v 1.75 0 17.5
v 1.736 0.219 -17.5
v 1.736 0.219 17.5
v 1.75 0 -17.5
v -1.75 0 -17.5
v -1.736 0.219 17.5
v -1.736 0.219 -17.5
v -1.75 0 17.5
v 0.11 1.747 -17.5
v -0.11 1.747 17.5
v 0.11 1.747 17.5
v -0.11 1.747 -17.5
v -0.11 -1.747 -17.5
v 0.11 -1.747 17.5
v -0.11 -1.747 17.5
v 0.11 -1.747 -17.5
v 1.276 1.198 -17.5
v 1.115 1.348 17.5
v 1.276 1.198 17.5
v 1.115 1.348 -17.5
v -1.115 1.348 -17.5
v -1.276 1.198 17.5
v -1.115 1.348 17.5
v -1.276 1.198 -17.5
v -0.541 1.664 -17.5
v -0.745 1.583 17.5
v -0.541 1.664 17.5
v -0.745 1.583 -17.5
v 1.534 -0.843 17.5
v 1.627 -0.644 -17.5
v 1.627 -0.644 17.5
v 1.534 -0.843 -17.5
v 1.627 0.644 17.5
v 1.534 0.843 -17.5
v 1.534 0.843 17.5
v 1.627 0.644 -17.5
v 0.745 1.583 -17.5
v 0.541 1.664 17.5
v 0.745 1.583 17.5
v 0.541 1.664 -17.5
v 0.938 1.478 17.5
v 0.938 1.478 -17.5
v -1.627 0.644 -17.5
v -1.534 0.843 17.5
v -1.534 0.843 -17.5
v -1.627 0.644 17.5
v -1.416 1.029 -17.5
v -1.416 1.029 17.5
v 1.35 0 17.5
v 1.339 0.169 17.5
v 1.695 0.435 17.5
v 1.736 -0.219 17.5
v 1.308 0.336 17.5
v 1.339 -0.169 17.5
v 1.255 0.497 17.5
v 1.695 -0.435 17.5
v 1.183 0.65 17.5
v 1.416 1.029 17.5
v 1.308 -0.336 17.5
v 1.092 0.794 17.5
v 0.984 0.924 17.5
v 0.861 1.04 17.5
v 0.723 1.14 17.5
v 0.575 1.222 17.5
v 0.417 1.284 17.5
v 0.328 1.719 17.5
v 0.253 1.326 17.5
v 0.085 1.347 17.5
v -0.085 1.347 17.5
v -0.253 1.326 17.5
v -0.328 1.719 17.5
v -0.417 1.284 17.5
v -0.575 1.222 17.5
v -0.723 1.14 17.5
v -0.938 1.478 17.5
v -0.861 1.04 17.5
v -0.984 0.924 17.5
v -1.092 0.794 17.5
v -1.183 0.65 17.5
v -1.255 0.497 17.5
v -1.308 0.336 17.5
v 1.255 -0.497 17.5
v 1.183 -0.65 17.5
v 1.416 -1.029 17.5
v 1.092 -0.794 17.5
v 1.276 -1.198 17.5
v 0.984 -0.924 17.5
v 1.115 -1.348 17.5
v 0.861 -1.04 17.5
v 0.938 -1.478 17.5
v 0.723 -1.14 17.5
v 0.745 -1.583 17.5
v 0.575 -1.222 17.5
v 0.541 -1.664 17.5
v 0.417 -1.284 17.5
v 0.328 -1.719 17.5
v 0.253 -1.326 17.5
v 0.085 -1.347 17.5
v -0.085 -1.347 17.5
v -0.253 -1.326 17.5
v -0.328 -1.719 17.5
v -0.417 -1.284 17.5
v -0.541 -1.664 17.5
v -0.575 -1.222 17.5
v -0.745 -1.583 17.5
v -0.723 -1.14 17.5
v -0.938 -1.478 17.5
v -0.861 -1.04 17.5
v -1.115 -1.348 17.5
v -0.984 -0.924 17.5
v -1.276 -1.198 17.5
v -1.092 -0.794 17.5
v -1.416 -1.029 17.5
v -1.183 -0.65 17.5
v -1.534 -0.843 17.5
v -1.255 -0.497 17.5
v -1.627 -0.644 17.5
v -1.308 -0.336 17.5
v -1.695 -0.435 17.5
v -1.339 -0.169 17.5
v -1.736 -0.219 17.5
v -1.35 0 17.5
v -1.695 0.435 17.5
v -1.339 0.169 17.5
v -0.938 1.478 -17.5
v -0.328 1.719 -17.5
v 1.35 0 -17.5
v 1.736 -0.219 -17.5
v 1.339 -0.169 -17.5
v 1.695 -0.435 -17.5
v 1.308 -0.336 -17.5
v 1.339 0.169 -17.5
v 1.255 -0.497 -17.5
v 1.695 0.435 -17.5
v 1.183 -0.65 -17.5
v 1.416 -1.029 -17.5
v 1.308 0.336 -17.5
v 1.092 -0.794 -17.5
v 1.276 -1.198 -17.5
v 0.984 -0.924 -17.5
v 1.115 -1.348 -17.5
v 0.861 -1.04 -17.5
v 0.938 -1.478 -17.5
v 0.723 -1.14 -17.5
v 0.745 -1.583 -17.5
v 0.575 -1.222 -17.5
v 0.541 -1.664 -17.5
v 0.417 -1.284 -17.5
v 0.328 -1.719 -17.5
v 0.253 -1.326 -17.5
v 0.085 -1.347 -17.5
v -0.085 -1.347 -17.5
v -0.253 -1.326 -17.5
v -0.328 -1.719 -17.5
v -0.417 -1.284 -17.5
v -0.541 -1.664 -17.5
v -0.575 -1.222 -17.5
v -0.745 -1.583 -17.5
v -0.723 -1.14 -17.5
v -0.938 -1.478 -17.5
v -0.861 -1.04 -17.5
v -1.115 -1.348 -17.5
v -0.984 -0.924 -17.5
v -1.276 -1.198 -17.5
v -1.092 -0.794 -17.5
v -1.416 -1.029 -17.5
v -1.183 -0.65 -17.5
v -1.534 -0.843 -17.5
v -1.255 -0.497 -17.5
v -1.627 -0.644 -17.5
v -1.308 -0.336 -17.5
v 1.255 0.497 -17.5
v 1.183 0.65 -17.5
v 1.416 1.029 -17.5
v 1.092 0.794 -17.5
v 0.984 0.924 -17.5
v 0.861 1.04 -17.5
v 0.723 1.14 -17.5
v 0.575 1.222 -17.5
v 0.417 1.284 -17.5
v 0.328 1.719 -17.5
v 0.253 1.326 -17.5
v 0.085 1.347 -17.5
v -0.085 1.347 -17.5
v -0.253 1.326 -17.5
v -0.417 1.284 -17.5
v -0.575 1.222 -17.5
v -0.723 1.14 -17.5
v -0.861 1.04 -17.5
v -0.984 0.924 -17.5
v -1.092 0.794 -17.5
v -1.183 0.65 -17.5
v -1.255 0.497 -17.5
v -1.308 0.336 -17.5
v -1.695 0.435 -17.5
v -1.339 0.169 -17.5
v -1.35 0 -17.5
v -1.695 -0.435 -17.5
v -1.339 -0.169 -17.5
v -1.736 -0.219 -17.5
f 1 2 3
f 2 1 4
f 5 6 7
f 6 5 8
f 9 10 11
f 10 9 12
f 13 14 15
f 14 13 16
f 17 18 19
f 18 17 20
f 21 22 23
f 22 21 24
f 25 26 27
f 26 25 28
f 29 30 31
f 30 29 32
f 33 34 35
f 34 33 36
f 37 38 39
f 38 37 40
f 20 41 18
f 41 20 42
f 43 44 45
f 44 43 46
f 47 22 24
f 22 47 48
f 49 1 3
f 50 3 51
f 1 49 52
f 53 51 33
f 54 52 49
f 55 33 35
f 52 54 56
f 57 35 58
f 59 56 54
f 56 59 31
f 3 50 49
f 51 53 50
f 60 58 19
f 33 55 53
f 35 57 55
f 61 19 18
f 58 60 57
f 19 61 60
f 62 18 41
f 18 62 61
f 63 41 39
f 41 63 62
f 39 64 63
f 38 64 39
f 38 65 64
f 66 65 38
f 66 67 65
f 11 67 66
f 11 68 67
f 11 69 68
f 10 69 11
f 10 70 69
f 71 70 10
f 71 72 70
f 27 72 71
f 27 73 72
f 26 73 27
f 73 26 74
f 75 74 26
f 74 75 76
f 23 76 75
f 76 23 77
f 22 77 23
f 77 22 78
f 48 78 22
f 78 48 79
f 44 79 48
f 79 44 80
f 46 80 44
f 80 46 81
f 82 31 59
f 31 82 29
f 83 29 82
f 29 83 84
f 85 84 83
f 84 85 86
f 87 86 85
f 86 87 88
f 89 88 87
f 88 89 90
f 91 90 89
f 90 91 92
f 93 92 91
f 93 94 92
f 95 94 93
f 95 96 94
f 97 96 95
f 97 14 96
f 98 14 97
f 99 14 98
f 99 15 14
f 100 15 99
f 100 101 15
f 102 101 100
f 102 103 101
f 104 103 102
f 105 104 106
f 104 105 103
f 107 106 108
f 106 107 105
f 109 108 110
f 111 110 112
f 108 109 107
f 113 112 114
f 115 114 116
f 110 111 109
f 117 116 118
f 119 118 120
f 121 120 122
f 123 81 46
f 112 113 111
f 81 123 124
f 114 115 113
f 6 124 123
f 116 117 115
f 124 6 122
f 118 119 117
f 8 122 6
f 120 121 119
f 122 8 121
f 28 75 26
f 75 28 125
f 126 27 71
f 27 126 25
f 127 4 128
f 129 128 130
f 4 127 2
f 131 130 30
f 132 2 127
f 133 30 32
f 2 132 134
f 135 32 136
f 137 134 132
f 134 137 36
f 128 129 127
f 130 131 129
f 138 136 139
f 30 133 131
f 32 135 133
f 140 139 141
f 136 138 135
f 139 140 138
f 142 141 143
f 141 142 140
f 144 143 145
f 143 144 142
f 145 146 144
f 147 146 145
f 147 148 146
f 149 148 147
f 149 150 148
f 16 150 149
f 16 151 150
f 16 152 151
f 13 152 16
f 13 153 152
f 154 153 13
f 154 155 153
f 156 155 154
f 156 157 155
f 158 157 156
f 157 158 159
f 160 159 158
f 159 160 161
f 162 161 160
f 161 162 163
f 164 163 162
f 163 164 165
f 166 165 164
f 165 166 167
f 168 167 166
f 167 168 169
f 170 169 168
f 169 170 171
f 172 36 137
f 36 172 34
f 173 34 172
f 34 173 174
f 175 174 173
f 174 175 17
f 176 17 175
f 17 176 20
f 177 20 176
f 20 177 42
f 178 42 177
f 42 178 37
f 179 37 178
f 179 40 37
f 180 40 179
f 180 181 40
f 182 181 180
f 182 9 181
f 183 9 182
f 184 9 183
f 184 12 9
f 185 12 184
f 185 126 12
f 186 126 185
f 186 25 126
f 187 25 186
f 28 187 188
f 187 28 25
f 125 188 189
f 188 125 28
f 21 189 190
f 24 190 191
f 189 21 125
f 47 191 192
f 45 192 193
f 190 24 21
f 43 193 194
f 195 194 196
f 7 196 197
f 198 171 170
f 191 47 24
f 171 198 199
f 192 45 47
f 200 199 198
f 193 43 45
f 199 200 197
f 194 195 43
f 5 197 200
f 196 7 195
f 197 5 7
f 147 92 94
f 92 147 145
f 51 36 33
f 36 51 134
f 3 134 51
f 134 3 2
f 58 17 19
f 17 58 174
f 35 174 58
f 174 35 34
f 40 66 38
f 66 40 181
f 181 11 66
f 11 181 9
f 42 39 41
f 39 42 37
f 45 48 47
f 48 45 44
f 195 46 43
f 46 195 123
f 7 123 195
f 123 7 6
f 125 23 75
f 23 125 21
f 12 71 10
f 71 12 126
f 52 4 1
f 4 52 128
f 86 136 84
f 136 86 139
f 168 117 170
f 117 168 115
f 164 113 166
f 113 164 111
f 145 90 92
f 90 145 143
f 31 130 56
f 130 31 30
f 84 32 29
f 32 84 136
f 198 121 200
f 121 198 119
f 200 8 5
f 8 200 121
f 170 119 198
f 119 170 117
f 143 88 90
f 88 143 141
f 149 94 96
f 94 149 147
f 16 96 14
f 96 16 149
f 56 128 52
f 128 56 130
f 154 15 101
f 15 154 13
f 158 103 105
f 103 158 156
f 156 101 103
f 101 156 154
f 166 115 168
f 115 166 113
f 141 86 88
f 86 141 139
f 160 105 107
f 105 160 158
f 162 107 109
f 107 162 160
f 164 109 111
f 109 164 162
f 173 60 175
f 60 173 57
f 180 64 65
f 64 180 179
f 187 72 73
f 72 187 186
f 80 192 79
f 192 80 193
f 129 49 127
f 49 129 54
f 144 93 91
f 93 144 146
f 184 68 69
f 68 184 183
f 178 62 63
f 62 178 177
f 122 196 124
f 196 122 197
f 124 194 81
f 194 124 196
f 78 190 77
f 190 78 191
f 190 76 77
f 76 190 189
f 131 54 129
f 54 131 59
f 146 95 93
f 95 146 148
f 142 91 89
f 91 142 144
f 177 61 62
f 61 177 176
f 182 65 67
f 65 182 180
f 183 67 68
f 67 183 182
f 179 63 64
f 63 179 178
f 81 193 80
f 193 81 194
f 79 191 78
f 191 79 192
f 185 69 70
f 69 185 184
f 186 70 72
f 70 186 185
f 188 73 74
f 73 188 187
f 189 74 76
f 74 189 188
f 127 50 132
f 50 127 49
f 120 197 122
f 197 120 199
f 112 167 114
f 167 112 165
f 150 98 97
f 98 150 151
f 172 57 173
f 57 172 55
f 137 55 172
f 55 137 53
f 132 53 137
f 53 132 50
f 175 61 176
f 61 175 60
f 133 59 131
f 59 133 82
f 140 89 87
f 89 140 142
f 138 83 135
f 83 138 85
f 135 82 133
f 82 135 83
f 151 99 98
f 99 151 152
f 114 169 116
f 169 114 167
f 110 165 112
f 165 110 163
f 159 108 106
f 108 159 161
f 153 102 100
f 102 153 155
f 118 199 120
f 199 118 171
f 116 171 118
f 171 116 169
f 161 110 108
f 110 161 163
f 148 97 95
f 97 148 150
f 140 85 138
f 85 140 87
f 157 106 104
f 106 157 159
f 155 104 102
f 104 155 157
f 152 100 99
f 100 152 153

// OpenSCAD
$fn = 50;


difference() {
	union() {
		translate(v = [0, 0, -17.5000000000]) {
			cylinder(h = 35, r = 1.7500000000);
		}
	}
	union() {
		translate(v = [0, 0, -100.0000000000]) {
			cylinder(h = 200, r = 1.3500000000);
		}
	}
}
